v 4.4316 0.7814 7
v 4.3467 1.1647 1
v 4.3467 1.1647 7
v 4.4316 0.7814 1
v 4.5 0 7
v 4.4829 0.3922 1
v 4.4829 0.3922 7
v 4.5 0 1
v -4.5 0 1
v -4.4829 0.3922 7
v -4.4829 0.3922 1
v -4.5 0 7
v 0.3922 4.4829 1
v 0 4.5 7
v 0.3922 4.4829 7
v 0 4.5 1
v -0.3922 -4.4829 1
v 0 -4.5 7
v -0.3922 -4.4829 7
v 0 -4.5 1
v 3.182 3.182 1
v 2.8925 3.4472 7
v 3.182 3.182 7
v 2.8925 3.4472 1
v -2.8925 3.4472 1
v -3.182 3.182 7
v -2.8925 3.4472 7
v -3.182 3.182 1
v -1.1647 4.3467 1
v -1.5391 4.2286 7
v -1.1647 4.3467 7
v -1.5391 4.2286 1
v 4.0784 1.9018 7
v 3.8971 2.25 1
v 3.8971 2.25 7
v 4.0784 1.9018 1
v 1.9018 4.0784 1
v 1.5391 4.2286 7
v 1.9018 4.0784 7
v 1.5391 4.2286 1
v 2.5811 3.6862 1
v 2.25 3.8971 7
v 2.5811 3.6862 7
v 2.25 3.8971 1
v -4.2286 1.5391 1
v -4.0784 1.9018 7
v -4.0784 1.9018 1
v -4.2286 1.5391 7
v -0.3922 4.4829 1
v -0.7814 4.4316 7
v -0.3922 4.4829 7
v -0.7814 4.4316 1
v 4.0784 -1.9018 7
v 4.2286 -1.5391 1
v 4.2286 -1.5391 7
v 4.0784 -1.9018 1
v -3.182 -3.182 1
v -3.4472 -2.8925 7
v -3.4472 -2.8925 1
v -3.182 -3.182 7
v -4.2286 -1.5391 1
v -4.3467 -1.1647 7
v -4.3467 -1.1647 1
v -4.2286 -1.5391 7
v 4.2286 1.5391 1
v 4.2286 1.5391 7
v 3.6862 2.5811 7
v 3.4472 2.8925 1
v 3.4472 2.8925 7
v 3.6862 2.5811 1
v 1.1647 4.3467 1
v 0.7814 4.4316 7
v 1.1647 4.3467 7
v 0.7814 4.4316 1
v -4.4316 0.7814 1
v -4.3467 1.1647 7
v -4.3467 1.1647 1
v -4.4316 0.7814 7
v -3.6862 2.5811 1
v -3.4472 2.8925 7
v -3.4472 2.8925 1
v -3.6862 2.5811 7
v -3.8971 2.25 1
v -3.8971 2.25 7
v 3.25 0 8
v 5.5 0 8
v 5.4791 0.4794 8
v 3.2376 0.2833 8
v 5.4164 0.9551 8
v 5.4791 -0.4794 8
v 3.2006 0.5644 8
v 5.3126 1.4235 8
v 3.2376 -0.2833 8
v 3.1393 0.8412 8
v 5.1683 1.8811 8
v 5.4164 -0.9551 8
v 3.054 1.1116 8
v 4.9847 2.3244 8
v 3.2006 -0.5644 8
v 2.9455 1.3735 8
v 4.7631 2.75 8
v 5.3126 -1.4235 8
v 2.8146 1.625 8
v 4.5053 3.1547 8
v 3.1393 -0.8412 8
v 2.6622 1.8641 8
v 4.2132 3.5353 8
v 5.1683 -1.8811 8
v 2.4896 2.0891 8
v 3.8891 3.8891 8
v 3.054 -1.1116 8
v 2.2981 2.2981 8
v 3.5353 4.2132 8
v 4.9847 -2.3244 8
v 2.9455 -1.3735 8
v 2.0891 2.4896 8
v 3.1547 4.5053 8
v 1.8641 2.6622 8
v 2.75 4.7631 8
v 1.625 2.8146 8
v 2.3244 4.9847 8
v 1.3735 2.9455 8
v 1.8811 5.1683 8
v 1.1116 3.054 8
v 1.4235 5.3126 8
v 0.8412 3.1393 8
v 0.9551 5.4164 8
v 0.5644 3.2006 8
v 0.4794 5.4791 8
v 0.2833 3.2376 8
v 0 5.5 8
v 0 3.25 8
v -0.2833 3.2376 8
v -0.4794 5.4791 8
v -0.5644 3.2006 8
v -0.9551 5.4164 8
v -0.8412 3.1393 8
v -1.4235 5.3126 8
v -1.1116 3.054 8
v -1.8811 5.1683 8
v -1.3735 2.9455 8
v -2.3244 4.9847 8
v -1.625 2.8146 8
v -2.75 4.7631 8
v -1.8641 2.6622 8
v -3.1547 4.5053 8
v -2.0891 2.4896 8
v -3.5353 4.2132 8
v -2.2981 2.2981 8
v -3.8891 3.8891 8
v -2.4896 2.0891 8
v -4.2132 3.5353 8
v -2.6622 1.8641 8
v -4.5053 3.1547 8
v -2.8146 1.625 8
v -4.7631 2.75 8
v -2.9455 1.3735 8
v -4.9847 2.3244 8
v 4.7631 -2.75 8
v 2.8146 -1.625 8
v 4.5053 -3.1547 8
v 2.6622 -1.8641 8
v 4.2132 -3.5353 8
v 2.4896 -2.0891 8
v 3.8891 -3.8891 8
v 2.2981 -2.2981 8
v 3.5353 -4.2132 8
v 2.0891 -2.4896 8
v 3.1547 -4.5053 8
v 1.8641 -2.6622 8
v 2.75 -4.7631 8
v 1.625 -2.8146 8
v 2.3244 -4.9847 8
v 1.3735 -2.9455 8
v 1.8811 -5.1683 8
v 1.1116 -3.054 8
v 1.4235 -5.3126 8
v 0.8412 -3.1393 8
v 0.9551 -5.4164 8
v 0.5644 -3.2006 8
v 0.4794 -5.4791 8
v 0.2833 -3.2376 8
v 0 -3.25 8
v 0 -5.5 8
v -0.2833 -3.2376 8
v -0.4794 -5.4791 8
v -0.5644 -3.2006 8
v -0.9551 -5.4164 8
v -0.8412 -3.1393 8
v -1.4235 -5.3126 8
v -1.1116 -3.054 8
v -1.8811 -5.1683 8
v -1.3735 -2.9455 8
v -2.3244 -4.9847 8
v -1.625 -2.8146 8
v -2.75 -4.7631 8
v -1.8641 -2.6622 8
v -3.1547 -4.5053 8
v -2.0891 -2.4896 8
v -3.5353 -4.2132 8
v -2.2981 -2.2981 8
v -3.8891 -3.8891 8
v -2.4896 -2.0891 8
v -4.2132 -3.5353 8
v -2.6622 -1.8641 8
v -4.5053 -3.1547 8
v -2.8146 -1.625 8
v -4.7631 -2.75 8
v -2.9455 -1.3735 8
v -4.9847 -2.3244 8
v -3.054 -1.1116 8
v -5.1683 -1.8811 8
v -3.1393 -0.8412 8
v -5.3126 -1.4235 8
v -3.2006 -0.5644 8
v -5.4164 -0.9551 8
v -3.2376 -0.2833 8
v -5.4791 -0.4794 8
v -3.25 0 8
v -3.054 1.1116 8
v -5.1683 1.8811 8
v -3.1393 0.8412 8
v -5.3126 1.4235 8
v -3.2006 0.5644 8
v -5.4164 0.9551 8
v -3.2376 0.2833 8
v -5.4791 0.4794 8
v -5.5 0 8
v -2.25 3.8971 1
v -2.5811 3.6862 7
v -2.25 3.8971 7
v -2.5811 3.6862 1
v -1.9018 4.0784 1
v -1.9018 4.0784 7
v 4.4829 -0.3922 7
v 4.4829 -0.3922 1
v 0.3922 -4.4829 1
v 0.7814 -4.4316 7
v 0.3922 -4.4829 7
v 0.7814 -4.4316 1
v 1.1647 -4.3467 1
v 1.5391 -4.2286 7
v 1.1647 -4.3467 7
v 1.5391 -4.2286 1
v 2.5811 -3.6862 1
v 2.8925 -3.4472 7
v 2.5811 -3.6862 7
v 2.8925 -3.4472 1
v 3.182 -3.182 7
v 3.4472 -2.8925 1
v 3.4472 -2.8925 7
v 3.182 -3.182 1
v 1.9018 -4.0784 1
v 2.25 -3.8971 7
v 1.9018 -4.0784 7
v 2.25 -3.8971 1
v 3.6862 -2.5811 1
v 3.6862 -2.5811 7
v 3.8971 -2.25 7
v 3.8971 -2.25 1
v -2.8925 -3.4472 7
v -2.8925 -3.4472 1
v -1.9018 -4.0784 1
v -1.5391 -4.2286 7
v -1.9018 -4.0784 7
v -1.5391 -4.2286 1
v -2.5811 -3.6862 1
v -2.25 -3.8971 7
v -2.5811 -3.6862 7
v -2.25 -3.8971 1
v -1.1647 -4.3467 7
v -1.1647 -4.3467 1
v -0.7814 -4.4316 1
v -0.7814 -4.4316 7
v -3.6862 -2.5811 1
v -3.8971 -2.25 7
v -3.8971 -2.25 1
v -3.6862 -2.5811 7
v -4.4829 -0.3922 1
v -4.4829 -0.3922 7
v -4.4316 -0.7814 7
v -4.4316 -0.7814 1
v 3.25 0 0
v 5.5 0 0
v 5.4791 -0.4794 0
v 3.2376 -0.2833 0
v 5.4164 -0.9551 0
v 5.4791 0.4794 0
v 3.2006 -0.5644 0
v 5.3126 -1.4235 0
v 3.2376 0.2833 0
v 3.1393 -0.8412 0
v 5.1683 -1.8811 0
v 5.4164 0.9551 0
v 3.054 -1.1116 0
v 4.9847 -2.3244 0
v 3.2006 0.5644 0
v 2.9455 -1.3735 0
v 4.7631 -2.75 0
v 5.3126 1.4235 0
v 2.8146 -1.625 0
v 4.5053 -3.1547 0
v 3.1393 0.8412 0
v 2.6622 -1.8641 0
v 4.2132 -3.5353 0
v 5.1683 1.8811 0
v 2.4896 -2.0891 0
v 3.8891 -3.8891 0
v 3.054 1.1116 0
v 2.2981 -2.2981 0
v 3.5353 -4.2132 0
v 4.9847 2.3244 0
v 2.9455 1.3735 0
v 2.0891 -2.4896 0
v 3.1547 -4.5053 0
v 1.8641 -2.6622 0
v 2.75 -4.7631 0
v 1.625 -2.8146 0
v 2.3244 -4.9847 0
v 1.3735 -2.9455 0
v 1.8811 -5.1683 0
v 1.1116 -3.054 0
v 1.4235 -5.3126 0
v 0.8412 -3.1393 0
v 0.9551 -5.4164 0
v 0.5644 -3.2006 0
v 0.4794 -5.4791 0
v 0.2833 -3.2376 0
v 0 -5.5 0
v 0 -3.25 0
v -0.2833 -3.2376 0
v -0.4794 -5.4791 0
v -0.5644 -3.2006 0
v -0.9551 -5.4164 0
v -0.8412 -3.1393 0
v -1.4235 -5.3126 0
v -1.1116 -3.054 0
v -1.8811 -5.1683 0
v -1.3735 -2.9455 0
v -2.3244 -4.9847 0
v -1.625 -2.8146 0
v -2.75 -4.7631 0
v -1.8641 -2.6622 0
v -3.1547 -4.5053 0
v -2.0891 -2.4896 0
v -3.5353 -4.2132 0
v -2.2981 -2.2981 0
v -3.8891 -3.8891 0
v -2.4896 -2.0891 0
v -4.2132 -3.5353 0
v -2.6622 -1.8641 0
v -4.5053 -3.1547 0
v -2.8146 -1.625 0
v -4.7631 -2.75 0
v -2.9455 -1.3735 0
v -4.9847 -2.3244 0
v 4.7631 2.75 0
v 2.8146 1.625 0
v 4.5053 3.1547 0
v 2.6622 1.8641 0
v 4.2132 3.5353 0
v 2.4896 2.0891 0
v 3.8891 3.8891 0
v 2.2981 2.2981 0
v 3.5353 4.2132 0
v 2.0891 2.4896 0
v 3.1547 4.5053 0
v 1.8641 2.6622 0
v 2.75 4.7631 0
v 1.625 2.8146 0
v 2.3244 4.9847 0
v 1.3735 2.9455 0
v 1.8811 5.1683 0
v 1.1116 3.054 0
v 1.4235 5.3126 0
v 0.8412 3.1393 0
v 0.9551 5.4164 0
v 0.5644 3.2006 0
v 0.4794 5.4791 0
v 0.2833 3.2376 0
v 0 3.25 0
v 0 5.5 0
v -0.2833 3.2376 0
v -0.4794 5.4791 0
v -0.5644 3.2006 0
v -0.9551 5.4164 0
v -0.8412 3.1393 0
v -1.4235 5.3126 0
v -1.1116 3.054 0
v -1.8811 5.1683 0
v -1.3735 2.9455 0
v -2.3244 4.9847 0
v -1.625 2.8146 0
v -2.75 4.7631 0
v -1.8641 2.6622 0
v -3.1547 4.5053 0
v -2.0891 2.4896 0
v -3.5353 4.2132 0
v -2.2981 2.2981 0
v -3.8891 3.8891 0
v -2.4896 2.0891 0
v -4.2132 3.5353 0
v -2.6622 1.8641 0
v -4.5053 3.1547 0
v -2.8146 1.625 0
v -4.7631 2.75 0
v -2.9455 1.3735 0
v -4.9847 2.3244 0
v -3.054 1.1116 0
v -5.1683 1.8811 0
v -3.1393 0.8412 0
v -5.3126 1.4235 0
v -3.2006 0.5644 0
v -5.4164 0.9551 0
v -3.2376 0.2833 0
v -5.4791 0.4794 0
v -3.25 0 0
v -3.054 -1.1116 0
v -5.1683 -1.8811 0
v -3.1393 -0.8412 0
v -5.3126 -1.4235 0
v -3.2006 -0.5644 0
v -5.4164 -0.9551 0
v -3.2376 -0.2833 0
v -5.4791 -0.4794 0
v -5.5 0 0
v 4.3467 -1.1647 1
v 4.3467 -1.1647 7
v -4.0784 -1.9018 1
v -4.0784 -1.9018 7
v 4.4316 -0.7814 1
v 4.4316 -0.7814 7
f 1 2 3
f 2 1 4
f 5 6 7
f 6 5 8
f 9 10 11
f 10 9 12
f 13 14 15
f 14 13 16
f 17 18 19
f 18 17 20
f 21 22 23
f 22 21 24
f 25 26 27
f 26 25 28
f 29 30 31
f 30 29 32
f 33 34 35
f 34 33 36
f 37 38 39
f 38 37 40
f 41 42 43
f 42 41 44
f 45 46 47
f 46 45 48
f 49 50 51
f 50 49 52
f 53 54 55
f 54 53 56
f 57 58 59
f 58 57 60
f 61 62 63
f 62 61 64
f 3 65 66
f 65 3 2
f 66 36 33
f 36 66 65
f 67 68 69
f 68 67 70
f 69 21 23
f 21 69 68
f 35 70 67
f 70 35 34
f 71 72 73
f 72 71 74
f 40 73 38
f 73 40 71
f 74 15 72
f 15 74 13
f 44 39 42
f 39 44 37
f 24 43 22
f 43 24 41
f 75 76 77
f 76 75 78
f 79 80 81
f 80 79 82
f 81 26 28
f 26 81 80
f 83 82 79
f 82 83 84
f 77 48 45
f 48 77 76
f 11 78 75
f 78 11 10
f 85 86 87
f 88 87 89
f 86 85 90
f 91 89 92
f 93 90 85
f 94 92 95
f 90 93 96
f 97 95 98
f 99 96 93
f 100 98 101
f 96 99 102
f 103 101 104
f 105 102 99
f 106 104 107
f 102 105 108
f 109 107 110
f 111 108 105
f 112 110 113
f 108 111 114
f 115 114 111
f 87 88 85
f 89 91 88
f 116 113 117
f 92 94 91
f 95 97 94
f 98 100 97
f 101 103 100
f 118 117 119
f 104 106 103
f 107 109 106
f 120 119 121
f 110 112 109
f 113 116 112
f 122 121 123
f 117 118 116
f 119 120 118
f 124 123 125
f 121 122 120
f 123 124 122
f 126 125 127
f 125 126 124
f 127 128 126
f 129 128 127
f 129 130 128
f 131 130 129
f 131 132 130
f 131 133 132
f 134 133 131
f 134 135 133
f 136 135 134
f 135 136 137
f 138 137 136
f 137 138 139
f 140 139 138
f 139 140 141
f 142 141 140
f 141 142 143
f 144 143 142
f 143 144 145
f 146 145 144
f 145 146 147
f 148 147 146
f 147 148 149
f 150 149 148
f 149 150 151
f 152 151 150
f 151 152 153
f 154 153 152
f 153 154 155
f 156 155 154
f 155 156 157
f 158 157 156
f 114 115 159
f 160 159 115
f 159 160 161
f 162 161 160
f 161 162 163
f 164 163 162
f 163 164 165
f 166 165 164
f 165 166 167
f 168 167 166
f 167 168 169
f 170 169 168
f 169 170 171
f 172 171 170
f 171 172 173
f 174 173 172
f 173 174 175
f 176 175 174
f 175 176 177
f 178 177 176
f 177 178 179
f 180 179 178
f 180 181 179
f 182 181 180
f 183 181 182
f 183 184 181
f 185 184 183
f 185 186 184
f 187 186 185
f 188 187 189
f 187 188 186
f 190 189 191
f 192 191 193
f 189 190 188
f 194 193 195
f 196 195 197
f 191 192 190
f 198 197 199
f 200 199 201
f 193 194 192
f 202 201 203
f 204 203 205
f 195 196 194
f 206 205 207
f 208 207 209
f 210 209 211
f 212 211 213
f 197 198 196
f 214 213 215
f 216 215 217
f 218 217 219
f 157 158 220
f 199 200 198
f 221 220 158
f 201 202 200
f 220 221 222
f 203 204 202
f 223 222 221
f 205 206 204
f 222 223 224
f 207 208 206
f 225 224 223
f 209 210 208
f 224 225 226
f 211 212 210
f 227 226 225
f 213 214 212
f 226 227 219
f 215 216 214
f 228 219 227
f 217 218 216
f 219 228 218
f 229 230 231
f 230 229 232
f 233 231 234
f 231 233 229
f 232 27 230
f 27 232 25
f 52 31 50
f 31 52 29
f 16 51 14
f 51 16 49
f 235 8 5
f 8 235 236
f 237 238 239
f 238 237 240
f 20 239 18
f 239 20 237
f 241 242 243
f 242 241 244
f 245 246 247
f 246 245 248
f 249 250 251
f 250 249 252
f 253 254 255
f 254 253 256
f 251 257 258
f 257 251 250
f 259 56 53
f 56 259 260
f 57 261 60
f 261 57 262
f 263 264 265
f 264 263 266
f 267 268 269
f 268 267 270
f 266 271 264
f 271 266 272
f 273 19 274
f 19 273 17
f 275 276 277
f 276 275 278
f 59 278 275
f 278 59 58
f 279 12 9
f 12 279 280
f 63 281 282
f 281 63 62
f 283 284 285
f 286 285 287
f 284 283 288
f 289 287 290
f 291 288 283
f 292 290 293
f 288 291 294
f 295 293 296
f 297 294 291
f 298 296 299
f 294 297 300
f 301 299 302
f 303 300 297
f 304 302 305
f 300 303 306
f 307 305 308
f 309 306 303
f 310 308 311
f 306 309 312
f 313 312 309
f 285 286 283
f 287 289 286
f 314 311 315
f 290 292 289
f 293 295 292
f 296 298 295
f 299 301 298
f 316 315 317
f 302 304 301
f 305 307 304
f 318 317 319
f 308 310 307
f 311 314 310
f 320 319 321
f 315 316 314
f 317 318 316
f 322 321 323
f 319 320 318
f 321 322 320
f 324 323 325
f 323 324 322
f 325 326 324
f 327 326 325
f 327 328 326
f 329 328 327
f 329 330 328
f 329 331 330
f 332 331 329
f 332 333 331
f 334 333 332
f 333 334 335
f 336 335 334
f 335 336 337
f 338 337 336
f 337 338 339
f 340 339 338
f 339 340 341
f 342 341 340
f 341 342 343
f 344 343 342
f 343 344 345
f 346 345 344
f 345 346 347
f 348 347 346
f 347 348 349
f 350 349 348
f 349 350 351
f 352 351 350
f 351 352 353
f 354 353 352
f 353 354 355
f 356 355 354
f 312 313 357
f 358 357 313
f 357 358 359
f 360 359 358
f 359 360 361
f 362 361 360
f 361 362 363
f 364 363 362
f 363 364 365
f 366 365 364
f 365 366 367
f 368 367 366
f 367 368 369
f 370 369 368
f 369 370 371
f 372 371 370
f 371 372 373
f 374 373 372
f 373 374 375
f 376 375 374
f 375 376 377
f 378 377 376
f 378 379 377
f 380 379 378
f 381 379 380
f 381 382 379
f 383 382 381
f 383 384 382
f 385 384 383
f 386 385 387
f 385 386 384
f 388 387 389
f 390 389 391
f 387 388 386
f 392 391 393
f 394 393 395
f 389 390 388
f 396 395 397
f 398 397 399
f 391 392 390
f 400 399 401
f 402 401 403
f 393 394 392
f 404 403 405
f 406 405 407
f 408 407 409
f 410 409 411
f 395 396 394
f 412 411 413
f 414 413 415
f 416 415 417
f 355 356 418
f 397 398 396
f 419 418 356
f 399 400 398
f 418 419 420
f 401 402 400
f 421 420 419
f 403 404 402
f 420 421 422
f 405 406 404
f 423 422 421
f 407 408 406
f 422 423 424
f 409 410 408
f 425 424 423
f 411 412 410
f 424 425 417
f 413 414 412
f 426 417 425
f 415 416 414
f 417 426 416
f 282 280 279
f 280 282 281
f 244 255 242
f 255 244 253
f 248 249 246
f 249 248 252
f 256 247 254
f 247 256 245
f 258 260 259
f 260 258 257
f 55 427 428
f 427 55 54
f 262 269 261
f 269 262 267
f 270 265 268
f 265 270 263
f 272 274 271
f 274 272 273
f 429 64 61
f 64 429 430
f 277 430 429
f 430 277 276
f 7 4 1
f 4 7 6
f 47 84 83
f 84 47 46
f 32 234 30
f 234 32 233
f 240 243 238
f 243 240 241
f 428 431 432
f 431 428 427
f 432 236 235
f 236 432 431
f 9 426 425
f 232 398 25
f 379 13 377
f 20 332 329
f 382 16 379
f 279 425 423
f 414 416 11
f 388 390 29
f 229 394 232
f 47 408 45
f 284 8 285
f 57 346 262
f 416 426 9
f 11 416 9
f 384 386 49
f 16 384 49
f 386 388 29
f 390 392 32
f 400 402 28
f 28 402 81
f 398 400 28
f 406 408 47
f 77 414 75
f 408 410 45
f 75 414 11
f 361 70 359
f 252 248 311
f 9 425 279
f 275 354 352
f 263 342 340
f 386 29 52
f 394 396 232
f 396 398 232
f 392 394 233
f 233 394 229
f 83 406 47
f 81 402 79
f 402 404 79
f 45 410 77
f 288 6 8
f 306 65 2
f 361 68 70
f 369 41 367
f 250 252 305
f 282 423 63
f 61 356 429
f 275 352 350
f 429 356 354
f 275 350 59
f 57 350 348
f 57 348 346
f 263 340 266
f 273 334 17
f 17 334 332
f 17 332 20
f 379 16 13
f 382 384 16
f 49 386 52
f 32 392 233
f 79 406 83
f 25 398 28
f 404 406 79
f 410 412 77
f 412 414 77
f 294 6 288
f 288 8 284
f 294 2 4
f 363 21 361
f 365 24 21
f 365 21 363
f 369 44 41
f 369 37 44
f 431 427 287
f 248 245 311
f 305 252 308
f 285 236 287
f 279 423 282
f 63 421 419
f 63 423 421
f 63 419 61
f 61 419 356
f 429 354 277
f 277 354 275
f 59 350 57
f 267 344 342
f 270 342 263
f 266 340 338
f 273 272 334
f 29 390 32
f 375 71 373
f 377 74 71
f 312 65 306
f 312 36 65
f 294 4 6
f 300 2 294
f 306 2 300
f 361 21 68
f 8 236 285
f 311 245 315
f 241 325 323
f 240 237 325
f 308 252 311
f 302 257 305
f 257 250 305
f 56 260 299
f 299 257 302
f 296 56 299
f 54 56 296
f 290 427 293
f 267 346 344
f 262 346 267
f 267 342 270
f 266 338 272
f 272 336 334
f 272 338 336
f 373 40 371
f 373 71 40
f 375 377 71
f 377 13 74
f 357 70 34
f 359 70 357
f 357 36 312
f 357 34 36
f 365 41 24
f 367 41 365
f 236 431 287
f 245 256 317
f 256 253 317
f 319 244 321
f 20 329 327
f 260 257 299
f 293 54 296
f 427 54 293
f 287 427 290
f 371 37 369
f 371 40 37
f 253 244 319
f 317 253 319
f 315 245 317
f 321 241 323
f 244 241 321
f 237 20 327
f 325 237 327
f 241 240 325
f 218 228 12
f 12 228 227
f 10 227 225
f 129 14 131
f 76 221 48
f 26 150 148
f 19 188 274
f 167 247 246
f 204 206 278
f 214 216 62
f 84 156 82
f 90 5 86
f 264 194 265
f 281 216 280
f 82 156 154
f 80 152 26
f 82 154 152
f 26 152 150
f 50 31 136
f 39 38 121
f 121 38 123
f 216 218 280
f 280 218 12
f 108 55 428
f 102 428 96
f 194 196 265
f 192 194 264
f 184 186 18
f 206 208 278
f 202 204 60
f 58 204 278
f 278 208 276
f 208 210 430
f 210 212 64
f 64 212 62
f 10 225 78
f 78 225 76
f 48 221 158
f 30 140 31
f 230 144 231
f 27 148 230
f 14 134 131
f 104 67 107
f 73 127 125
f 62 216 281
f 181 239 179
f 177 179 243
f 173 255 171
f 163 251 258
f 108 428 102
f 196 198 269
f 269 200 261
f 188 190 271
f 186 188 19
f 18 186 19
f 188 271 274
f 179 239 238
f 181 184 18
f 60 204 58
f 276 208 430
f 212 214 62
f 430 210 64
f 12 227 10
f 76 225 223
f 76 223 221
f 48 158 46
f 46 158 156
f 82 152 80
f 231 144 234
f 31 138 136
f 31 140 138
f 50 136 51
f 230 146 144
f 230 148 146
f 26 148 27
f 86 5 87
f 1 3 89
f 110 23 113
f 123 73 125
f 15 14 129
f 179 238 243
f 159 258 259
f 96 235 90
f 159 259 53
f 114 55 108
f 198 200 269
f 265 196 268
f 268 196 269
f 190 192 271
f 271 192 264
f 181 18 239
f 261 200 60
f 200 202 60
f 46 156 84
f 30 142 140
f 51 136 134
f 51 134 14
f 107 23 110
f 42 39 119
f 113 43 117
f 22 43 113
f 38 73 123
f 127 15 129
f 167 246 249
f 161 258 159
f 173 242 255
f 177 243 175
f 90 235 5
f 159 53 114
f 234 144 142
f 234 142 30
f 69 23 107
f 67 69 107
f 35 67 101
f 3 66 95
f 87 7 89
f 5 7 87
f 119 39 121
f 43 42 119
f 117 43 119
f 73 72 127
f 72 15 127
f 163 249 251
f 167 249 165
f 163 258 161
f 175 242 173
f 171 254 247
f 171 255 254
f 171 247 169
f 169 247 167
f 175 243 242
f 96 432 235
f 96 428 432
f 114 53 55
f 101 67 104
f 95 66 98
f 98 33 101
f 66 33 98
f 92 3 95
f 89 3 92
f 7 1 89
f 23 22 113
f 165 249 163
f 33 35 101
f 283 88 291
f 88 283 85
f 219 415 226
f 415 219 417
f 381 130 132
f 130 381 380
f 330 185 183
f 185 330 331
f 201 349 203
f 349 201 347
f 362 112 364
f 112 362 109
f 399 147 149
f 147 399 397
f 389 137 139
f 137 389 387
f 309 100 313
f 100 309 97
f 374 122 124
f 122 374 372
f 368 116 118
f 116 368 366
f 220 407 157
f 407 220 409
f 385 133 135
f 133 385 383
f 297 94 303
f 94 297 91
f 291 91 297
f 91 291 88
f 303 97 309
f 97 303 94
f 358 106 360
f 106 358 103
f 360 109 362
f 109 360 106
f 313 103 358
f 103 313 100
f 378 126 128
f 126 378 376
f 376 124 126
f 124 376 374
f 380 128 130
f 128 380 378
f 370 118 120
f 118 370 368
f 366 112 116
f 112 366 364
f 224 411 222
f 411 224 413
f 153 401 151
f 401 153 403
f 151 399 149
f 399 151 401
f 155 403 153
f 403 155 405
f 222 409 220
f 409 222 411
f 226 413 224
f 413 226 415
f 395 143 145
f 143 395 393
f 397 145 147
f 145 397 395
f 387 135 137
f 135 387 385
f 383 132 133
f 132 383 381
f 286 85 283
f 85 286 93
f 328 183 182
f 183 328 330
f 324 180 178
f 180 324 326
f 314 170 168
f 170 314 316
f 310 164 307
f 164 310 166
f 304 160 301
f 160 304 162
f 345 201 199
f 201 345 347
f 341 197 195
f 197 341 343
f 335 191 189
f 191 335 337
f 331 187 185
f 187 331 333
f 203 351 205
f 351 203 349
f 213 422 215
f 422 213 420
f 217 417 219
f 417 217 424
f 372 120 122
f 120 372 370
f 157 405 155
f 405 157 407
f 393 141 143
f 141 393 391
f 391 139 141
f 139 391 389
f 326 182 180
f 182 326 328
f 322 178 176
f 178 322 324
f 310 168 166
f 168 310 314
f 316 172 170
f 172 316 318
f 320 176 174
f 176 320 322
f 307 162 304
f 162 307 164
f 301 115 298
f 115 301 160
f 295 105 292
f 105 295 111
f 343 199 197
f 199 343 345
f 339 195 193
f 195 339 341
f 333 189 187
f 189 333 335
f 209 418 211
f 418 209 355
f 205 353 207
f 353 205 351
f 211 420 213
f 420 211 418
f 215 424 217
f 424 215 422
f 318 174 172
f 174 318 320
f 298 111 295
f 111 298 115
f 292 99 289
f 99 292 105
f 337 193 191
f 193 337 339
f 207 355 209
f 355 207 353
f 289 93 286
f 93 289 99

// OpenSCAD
// Parametric clear Pulley
// by Semchenkov Alexander

// tuneable constants

pulley_dia = 9;
shaft_dia = 6.5;// NEMA17 motor shaft exact diameter = 5
height = 6;   // length of toothed part of pulley, standard = 12

retainer = 1;     // Belt retainer above teeth, 0 = No, 1 = Yes
retainer_ht = 1;   // height of retainer flange over pulley, standard = 1.5
idler = 1;            // Belt retainer below teeth, 0 = No, 1 = Yes
idler_ht = 1;     // height of idler flange over pulley, standard = 1.5

base_ht = 0;    
base_dia = 0; // pulley base diameter, standard = 20; 0 for Auto

pulley();

module pulley(){
     y = 0;
     fn = pulley_dia*8;
    
     difference(){
         union(){
            cylinder(d=pulley_dia,h=height+base_ht+retainer_ht+idler_ht, $fn=fn);
            //base
            if ( base_ht > 0 ){
                if ( base_dia == 0 ) {
                    cylinder(d=pulley_dia + 2*idler,h=base_ht, $fn=fn);
                } else {
                    cylinder(d=base_dia,h=base_ht, $fn=fn);
                }
            }
           
            //belt retainer / idler
            if ( idler > 0 ) {
                translate ([0,0,base_ht]) 
                    rotate_extrude($fn=fn)  
                        polygon([[0,0],[pulley_dia/2+idler_ht,0],[pulley_dia/2 , idler_ht],[0 , idler_ht],[0,0]]);
            }
            
            if ( retainer > 0 ) {
                translate ([0,0,base_ht+idler_ht+height]) 
                    rotate_extrude($fn=fn)  
                        polygon([[0,0],[pulley_dia/2,0],[pulley_dia/2+retainer_ht, retainer_ht],[0 , retainer_ht],[0,0]]);
            }
        }

        translate([0,0,0]) 
        cylinder(d=shaft_dia,h=height+base_ht+retainer_ht+idler_ht, $fn=fn);
    }
 }
